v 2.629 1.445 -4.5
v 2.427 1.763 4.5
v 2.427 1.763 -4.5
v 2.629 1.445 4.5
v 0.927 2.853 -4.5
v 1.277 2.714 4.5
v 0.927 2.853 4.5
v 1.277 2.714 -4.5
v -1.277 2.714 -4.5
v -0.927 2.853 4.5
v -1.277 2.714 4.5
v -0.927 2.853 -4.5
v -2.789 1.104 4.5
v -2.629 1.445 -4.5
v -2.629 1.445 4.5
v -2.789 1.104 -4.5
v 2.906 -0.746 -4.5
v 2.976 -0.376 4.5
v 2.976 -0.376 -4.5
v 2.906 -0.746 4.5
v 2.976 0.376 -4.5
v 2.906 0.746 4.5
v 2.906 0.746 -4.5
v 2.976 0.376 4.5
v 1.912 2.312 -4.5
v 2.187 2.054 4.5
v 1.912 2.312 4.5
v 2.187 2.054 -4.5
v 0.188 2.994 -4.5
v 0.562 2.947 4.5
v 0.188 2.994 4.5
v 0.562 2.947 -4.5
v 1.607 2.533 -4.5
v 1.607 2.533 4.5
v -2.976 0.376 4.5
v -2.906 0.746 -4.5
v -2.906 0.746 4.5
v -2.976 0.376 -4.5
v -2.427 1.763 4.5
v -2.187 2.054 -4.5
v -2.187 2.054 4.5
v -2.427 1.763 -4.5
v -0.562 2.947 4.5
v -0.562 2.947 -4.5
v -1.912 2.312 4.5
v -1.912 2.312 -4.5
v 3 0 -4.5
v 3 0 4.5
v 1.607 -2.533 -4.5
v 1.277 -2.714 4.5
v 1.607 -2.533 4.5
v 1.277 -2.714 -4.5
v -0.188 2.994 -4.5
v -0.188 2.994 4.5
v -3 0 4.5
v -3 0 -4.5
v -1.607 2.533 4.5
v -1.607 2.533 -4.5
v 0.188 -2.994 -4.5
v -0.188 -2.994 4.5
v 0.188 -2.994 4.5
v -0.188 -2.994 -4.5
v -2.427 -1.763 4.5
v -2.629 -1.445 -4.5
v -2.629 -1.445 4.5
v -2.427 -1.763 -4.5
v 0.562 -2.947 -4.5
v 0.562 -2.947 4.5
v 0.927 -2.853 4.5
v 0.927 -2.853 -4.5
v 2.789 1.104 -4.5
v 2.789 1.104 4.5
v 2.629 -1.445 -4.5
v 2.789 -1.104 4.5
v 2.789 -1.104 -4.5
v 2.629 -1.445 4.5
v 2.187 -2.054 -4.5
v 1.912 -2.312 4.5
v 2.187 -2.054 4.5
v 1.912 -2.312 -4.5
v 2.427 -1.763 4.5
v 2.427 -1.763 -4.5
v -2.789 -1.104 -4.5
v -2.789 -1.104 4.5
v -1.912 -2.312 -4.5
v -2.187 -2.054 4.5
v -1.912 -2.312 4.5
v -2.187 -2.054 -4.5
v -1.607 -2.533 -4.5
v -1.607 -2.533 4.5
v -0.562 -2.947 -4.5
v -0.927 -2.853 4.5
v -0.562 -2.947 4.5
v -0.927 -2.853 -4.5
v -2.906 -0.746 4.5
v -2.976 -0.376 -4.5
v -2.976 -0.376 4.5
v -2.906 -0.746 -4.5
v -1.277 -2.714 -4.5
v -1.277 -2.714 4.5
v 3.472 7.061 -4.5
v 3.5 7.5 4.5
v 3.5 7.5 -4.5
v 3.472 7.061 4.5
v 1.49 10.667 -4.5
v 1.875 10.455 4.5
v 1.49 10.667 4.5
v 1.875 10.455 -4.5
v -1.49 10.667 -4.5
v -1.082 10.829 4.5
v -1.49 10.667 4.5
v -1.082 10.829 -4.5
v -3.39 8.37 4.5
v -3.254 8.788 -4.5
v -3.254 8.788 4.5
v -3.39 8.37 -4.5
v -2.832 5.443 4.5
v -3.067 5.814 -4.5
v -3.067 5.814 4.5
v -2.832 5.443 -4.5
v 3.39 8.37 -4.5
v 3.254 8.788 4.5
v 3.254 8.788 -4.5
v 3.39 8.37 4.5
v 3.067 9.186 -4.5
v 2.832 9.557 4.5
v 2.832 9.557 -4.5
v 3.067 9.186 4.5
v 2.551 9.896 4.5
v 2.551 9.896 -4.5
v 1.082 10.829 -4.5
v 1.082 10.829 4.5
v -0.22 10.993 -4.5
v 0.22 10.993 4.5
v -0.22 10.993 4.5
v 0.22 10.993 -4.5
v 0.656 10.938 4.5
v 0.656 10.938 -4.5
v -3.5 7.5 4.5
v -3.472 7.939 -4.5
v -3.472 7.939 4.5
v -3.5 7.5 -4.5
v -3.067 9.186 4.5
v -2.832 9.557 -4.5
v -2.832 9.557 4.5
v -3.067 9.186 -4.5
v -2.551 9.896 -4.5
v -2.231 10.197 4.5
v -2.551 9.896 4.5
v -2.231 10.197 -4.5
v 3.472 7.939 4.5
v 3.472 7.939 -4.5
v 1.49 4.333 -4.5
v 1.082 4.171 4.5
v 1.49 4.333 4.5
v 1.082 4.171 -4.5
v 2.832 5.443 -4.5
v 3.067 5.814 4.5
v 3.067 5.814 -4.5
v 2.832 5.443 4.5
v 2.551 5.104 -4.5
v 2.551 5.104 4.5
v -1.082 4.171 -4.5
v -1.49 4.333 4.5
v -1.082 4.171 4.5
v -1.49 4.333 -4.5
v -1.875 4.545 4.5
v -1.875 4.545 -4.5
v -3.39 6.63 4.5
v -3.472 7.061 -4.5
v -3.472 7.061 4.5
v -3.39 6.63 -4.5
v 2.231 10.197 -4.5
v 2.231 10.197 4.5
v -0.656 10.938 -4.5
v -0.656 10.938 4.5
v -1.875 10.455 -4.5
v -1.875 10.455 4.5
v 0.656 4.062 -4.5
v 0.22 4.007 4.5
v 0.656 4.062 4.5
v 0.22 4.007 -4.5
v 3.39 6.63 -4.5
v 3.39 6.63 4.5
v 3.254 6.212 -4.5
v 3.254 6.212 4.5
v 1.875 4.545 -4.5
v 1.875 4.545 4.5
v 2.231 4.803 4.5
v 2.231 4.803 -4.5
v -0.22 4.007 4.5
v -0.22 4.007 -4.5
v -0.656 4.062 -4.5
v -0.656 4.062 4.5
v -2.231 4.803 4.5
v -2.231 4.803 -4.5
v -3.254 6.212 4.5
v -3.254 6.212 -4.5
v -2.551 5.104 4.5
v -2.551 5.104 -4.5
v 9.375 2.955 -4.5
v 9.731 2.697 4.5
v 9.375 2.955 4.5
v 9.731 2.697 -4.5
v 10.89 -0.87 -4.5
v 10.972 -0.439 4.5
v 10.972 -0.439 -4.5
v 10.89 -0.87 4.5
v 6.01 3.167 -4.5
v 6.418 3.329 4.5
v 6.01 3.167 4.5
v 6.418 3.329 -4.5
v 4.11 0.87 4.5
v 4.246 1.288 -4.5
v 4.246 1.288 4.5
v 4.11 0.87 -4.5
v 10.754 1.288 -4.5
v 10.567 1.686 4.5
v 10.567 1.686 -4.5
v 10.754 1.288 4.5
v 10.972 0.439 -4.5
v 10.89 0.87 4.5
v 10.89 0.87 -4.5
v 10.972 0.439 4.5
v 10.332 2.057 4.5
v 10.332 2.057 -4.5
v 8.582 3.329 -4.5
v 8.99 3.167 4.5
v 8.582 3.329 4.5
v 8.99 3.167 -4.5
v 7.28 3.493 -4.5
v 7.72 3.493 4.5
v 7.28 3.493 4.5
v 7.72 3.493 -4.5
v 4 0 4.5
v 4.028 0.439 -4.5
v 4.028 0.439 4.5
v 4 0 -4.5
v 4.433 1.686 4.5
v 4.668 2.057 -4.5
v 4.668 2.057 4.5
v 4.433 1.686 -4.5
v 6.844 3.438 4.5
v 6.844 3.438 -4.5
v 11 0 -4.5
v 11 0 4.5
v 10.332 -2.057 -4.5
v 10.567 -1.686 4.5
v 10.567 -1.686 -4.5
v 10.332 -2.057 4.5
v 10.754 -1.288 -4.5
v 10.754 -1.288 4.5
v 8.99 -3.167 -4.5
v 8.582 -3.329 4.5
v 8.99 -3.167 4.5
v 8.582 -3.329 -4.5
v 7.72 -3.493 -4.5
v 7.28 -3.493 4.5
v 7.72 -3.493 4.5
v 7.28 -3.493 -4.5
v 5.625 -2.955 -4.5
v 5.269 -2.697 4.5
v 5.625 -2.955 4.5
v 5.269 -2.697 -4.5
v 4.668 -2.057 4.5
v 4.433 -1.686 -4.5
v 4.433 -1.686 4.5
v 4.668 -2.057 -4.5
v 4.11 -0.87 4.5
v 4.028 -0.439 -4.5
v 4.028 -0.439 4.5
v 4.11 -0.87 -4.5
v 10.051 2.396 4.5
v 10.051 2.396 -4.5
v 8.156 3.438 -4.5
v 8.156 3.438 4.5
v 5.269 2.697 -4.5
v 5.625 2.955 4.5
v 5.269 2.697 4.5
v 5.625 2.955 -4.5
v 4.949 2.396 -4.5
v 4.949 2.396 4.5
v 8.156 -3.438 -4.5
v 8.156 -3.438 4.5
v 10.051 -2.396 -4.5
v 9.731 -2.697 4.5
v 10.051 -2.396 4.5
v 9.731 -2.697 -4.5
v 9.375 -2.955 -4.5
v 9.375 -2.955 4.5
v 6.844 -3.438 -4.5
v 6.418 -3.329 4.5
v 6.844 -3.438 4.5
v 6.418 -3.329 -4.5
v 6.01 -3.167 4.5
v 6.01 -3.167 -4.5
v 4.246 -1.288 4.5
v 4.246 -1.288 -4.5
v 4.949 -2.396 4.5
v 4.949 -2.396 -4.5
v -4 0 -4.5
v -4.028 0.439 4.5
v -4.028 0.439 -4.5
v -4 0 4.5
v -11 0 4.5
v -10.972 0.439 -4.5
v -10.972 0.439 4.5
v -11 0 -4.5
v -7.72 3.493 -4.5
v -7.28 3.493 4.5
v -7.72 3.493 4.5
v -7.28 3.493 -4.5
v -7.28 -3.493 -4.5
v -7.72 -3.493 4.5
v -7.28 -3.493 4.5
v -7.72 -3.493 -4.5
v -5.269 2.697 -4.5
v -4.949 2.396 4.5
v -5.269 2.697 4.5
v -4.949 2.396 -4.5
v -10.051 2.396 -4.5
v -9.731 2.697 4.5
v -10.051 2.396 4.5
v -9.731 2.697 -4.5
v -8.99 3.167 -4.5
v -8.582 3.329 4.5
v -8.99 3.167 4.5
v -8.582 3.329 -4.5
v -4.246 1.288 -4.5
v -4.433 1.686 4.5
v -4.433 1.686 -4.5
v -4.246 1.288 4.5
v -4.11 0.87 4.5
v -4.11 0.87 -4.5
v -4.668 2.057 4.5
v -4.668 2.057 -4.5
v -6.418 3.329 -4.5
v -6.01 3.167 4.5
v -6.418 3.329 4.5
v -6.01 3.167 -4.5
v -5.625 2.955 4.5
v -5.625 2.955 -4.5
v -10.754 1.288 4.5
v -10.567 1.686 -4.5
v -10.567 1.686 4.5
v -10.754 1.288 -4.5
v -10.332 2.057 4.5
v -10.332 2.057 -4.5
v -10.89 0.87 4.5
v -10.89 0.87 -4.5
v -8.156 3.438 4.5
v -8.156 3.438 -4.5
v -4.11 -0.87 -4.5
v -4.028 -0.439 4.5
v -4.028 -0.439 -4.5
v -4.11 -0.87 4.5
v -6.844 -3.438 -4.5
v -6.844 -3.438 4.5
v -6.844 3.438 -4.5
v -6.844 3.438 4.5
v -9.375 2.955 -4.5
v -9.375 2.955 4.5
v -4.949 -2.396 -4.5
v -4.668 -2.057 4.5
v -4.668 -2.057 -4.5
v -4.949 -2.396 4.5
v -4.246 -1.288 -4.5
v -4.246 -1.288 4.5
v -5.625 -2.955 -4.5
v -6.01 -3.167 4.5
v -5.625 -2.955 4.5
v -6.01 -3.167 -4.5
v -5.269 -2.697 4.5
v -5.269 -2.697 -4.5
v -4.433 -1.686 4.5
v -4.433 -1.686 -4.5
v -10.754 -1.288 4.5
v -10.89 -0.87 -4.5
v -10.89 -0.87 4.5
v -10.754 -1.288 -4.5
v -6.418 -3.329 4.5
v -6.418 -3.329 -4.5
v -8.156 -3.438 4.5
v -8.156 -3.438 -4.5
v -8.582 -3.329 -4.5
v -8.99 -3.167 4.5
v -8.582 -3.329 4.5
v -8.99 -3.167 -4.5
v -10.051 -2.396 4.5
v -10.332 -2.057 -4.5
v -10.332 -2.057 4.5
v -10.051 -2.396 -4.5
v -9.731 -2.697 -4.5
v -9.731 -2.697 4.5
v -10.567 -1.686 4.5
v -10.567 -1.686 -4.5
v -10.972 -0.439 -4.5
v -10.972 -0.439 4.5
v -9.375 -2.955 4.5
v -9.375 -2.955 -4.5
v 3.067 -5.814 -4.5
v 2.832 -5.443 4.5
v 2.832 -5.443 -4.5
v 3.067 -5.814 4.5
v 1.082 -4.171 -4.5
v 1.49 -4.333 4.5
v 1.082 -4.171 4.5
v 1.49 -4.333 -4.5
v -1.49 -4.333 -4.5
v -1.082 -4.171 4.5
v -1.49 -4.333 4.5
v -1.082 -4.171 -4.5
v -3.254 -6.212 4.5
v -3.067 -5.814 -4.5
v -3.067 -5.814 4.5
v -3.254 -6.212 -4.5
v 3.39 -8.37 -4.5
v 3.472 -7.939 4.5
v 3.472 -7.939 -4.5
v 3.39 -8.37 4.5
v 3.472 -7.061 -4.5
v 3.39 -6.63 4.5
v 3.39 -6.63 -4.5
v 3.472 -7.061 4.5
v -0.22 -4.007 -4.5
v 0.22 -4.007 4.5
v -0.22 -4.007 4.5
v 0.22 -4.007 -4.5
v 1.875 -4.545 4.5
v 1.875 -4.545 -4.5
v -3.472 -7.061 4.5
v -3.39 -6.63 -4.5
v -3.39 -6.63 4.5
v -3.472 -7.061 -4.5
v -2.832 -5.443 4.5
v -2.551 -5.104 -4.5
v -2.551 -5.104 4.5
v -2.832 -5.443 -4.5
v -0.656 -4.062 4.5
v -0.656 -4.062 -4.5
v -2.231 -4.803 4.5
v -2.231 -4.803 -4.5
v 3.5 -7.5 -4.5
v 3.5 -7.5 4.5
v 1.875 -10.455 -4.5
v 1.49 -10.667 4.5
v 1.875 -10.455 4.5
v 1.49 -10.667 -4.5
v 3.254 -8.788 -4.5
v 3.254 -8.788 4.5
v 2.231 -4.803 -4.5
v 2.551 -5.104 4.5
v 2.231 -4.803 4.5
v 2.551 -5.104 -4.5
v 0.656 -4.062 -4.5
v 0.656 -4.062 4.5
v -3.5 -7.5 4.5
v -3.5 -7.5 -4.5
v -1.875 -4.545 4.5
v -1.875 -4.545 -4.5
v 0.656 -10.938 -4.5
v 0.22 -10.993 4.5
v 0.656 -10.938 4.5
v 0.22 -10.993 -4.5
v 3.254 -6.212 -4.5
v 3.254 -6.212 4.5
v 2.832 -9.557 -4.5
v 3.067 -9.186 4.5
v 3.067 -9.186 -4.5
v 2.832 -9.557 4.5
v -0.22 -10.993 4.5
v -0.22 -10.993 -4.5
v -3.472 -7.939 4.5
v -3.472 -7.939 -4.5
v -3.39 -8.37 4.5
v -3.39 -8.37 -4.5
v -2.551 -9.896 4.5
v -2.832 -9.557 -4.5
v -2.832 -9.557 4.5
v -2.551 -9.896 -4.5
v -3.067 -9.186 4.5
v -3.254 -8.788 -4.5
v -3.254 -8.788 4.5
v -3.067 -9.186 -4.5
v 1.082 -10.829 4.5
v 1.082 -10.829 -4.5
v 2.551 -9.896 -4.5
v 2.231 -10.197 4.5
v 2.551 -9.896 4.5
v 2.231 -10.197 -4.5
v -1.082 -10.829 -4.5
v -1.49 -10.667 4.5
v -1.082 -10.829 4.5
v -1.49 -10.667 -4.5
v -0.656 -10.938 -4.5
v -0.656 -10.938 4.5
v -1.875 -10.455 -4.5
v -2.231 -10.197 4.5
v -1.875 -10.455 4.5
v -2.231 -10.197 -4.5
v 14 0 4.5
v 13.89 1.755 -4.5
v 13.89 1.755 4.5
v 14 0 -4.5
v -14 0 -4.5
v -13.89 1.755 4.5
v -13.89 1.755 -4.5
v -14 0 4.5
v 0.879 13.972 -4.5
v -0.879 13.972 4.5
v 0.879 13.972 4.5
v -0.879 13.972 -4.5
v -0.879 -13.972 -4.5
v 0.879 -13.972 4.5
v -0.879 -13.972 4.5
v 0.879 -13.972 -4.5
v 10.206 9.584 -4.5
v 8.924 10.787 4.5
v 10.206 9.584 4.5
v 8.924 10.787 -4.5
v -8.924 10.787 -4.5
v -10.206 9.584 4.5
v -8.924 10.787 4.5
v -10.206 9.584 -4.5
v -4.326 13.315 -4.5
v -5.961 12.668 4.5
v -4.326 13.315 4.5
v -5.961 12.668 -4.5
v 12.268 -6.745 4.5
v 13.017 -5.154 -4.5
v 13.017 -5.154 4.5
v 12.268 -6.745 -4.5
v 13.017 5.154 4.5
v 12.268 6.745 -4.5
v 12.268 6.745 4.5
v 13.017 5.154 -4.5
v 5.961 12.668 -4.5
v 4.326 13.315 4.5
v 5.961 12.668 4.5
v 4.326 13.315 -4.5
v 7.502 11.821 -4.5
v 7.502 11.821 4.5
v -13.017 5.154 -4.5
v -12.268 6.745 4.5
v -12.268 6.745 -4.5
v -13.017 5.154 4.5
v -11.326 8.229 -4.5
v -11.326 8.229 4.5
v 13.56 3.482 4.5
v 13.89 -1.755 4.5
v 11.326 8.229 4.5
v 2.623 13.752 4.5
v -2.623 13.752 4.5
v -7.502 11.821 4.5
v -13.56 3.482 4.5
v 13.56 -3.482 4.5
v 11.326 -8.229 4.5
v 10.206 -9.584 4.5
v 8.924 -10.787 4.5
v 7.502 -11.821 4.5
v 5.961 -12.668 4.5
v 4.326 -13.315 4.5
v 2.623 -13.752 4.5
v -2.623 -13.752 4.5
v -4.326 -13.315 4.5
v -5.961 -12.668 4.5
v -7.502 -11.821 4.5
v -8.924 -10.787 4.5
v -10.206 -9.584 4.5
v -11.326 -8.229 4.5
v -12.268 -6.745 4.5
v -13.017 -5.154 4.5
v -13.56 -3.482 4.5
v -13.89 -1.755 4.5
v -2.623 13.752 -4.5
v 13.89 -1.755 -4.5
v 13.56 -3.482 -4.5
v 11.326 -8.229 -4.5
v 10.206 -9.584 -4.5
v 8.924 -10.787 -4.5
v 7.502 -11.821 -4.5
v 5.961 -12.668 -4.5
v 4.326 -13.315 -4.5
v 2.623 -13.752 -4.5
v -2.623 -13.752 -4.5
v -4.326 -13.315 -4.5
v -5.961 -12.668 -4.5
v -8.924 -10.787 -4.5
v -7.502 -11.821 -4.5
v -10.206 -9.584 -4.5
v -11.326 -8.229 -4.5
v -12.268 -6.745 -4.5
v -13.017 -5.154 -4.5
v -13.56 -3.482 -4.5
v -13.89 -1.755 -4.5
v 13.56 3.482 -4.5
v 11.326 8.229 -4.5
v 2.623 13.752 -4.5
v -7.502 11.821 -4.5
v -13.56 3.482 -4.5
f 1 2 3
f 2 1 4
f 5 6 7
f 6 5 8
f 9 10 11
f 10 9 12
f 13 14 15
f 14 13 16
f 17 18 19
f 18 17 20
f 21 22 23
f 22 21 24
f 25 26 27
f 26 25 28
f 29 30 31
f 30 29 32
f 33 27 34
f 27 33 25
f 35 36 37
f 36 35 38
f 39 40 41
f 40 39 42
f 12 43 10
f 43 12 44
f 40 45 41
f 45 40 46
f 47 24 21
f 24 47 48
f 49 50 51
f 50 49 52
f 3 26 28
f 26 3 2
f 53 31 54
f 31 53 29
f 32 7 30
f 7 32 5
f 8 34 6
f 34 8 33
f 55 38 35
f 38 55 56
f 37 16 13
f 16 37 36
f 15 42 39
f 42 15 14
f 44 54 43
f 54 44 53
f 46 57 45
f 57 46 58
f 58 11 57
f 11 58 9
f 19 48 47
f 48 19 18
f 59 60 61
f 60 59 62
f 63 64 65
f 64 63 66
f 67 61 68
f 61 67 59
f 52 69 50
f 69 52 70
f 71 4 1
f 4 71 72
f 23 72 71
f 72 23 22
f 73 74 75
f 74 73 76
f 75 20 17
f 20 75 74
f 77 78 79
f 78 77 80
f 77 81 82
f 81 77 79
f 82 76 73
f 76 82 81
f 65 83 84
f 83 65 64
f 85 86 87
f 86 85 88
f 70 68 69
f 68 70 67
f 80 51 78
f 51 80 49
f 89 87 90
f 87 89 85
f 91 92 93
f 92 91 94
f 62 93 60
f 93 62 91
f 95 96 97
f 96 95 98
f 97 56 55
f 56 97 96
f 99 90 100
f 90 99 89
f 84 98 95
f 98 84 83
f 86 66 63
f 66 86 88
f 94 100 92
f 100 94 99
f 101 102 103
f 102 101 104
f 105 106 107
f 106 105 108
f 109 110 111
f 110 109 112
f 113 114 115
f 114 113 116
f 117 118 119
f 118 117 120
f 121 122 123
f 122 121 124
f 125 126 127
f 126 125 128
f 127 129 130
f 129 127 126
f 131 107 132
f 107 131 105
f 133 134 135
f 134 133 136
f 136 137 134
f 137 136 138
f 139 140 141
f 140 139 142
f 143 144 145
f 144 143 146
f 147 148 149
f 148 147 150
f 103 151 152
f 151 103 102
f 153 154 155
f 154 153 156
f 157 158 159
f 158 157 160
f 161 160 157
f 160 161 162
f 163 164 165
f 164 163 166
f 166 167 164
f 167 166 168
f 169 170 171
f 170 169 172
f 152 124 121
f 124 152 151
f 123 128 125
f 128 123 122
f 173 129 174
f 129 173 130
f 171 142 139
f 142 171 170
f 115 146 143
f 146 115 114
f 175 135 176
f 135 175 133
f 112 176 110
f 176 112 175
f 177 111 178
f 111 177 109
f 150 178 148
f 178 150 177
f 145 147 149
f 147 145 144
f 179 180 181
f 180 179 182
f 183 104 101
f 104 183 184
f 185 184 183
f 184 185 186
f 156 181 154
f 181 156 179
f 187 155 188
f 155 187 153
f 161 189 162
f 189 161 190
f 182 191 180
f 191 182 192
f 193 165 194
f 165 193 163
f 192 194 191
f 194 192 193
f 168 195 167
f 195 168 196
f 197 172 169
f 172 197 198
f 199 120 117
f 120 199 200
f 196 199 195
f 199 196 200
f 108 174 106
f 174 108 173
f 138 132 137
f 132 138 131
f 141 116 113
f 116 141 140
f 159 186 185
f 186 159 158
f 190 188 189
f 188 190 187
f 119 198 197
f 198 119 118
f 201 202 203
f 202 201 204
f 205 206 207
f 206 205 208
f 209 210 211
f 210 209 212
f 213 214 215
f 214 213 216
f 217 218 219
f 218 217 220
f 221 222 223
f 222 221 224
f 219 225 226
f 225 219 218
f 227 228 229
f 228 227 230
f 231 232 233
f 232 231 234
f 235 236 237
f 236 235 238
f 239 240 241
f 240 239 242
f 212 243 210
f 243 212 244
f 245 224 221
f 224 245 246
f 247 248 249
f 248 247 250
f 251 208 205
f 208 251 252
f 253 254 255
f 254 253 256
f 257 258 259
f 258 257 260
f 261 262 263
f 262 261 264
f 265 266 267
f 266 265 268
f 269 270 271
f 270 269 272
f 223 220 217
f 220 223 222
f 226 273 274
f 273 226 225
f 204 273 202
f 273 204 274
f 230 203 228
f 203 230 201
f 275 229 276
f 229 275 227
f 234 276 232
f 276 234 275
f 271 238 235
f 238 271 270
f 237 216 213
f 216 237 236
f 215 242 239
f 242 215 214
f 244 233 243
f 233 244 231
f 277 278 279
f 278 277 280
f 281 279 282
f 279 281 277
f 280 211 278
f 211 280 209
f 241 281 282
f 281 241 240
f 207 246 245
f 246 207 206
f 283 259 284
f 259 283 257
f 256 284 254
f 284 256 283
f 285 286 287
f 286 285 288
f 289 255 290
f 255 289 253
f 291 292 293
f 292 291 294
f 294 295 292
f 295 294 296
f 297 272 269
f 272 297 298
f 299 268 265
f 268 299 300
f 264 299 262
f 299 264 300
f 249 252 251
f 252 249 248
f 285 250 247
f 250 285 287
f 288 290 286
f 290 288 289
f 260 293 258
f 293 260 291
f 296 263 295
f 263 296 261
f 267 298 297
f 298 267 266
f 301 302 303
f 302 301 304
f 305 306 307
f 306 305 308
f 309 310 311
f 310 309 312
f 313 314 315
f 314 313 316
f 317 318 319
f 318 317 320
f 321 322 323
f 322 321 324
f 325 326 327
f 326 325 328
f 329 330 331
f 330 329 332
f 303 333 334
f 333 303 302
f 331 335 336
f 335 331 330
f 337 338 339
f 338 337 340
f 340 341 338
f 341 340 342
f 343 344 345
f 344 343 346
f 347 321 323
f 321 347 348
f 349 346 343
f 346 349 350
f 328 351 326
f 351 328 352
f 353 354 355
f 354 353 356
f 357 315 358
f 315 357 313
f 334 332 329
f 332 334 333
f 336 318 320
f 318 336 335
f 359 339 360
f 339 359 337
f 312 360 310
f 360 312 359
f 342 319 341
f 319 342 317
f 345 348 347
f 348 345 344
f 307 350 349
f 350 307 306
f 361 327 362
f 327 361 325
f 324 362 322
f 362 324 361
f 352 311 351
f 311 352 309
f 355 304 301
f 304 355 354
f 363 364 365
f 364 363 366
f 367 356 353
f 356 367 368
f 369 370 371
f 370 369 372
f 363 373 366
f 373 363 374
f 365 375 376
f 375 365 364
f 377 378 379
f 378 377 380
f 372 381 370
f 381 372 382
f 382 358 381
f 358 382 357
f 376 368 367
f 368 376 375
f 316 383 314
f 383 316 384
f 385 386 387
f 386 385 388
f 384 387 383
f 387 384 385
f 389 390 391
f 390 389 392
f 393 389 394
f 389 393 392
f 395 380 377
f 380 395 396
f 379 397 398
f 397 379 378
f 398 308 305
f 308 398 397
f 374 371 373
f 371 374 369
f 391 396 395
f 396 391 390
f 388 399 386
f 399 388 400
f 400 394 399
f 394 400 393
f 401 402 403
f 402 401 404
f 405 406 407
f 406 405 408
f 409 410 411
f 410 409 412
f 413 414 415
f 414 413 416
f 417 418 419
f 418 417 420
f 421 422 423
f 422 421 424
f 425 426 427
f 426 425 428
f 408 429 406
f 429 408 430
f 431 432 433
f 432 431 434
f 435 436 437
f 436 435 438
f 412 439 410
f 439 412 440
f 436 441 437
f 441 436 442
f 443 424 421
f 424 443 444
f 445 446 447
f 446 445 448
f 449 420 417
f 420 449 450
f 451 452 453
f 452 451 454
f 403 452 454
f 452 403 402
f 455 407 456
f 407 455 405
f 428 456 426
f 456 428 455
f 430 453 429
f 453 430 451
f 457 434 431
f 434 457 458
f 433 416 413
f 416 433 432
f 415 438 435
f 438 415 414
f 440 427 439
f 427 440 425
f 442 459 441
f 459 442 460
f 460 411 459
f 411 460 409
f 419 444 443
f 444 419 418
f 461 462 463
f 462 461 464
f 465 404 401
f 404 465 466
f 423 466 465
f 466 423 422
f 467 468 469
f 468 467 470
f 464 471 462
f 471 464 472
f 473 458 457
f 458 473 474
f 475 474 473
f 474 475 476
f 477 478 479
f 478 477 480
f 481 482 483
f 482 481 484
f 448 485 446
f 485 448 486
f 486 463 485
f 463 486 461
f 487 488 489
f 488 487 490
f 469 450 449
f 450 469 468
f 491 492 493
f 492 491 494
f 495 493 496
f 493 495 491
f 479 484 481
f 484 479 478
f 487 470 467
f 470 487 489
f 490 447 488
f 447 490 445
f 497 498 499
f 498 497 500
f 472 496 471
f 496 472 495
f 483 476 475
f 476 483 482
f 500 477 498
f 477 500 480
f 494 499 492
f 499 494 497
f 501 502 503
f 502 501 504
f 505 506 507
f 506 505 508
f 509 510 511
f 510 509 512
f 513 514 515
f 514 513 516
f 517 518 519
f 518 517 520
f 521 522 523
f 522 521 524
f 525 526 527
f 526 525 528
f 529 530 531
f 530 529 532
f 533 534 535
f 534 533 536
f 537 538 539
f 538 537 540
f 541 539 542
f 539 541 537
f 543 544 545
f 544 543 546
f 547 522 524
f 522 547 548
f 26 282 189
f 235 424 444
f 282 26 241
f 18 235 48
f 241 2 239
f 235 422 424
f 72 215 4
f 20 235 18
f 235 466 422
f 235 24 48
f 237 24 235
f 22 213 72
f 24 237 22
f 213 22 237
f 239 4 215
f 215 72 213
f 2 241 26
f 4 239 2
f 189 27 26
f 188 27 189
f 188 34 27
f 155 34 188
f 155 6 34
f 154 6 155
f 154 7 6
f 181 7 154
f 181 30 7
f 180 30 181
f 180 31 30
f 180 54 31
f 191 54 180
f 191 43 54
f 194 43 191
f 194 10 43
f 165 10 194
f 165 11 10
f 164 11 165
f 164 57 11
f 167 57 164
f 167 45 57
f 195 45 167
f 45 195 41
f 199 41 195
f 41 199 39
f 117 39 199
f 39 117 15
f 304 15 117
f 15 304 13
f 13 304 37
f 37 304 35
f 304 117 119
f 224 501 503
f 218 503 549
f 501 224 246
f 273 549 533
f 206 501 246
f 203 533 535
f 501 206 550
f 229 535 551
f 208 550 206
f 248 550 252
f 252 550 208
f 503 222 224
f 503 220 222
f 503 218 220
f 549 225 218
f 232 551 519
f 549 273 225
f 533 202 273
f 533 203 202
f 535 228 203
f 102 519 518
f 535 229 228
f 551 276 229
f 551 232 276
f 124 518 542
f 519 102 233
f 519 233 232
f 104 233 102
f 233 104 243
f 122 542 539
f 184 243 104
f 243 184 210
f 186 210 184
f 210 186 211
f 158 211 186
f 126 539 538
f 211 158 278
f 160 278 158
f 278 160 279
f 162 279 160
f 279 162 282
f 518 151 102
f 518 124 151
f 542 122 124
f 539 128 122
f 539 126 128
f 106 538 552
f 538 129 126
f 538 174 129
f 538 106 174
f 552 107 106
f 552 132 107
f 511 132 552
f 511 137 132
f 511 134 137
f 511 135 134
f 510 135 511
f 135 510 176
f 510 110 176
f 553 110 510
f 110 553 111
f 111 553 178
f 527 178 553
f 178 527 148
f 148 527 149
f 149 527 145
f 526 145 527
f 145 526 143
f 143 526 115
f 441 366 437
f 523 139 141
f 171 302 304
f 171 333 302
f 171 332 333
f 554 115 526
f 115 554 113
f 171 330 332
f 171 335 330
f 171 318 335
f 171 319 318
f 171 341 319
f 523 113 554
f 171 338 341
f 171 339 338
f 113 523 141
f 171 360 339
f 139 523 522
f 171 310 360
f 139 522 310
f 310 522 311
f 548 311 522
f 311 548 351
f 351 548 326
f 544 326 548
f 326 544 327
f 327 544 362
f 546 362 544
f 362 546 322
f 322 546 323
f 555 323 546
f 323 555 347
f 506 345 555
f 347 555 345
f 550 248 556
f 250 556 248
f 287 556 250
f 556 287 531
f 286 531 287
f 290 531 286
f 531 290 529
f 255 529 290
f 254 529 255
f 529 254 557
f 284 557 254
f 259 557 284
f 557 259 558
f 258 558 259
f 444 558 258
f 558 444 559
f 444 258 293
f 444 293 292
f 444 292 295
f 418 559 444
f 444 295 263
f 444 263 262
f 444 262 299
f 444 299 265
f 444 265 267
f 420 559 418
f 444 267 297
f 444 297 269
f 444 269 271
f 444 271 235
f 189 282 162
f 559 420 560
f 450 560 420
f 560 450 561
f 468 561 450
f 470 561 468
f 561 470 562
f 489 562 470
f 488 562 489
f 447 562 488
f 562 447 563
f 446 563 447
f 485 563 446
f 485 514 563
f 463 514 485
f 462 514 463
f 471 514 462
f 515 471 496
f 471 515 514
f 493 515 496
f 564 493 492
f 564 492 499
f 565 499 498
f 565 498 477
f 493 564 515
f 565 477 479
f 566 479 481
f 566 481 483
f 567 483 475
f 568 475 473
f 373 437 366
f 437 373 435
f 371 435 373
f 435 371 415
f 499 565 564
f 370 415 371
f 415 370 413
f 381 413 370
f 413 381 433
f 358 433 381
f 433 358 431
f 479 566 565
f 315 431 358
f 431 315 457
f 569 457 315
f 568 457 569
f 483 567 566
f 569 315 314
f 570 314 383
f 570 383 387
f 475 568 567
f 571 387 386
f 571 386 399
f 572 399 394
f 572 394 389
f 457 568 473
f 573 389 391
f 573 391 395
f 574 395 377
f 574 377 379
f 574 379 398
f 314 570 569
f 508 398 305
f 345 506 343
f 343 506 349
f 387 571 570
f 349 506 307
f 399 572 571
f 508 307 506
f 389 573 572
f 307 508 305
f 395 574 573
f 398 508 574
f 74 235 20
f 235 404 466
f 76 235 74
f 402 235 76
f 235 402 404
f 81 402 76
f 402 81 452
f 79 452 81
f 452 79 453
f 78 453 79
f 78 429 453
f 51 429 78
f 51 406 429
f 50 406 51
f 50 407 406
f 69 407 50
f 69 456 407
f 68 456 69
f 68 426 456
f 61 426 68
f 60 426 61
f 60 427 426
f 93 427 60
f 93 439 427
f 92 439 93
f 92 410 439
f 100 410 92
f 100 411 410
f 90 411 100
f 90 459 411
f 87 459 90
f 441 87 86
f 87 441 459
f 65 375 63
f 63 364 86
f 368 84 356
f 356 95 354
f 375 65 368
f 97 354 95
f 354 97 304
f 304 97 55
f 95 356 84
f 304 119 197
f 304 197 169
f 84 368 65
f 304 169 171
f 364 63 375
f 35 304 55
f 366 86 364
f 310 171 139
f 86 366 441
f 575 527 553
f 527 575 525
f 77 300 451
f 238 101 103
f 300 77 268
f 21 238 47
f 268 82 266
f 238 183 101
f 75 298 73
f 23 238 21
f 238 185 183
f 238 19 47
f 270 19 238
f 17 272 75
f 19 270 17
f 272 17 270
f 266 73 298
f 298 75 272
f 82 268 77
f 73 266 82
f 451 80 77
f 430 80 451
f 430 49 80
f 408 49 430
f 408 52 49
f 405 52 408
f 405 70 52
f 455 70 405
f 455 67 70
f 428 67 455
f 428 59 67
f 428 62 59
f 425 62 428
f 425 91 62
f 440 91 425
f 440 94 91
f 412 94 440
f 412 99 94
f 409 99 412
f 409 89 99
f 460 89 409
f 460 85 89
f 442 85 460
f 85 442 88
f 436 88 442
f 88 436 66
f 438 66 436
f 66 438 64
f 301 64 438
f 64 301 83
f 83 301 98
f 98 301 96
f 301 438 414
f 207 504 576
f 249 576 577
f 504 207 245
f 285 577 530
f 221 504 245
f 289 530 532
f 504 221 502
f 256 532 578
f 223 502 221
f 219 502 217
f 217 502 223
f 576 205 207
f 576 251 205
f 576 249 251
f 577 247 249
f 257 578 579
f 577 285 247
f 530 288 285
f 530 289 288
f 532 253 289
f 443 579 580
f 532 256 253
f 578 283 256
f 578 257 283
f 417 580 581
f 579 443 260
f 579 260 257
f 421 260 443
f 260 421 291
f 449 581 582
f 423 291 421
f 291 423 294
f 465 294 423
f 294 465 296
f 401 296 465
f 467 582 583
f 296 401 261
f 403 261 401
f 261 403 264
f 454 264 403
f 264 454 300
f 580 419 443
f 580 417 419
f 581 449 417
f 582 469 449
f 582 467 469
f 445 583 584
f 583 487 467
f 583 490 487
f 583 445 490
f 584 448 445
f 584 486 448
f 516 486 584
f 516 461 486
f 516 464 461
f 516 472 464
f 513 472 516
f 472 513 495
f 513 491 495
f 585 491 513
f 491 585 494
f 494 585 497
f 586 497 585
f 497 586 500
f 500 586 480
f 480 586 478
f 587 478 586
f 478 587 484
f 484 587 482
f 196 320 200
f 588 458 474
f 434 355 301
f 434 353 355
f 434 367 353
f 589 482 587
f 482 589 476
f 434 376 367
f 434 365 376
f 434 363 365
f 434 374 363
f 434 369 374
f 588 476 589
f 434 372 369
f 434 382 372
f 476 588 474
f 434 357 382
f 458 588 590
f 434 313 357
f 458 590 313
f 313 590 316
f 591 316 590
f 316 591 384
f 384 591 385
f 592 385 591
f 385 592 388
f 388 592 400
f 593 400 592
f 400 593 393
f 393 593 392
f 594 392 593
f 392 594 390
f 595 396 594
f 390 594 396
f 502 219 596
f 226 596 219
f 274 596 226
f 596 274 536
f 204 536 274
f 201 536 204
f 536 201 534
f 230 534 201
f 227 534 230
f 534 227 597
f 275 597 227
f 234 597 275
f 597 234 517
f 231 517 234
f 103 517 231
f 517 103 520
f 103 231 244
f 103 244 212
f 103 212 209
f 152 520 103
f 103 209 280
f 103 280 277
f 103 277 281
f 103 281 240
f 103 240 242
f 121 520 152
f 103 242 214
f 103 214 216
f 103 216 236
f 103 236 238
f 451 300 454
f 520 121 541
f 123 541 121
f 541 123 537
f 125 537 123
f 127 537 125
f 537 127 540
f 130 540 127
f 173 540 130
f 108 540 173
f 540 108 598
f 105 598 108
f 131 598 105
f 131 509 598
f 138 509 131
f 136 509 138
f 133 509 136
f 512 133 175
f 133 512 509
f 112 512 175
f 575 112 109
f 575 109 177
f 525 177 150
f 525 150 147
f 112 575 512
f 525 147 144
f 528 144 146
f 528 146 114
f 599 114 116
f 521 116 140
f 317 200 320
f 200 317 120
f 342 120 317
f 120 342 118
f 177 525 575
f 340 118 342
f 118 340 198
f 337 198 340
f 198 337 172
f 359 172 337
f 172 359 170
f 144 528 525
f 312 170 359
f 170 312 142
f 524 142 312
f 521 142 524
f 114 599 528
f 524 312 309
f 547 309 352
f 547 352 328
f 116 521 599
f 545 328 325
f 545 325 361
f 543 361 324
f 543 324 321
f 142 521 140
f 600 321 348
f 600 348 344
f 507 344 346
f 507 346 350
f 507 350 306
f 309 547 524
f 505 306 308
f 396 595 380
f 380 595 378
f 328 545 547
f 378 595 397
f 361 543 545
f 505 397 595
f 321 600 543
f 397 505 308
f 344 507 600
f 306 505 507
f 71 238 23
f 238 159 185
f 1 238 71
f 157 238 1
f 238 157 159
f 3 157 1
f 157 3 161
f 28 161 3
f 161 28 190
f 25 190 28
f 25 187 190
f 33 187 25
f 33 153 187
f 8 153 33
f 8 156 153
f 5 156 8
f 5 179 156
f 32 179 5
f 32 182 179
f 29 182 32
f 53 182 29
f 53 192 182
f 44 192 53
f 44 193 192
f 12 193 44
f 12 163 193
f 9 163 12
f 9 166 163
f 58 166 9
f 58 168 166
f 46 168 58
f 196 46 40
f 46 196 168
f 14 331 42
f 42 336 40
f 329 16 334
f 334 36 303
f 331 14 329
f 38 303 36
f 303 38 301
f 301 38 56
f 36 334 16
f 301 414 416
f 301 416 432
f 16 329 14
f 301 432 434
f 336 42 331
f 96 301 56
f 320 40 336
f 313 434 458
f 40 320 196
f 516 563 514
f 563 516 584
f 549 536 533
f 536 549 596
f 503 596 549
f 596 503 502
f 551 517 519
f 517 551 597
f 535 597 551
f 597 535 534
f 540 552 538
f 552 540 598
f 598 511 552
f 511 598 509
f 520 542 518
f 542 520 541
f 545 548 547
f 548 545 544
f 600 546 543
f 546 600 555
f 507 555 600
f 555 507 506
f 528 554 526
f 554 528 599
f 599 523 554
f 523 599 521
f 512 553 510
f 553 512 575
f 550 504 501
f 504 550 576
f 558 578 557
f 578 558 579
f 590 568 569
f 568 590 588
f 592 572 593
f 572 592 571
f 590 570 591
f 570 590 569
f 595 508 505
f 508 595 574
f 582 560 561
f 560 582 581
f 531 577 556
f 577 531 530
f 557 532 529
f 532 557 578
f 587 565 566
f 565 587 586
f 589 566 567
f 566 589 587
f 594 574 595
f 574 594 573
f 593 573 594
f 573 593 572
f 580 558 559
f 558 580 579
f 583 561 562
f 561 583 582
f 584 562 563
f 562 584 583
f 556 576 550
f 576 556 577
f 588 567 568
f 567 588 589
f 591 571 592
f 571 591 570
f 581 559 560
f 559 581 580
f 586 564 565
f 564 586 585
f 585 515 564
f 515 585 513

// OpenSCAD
$fn = 50;


difference() {
	union() {
		translate(v = [0, 0, -4.5000000000]) {
			rotate(a = [0, 0, 0]) {
				cylinder(h = 9, r = 14.0000000000);
			}
		}
	}
	union() {
		translate(v = [0.0000000000, 0.0000000000, -125.0000000000]) {
			rotate(a = [0, 0, 0]) {
				cylinder(h = 250, r = 3.0000000000);
			}
		}
		translate(v = [0, 0, -125.0000000000]) {
			rotate(a = [0, 0, 0]) {
				cylinder(h = 250, r = 3.0000000000);
			}
		}
		translate(v = [0, 7.5000000000, -125.0000000000]) {
			rotate(a = [0, 0, 0]) {
				cylinder(h = 250, r = 3.5000000000);
			}
		}
		translate(v = [7.5000000000, 0, -125.0000000000]) {
			rotate(a = [0, 0, 0]) {
				cylinder(h = 250, r = 3.5000000000);
			}
		}
		translate(v = [-7.5000000000, 0, -125.0000000000]) {
			rotate(a = [0, 0, 0]) {
				cylinder(h = 250, r = 3.5000000000);
			}
		}
		translate(v = [0, -7.5000000000, -125.0000000000]) {
			rotate(a = [0, 0, 0]) {
				cylinder(h = 250, r = 3.5000000000);
			}
		}
	}
}
